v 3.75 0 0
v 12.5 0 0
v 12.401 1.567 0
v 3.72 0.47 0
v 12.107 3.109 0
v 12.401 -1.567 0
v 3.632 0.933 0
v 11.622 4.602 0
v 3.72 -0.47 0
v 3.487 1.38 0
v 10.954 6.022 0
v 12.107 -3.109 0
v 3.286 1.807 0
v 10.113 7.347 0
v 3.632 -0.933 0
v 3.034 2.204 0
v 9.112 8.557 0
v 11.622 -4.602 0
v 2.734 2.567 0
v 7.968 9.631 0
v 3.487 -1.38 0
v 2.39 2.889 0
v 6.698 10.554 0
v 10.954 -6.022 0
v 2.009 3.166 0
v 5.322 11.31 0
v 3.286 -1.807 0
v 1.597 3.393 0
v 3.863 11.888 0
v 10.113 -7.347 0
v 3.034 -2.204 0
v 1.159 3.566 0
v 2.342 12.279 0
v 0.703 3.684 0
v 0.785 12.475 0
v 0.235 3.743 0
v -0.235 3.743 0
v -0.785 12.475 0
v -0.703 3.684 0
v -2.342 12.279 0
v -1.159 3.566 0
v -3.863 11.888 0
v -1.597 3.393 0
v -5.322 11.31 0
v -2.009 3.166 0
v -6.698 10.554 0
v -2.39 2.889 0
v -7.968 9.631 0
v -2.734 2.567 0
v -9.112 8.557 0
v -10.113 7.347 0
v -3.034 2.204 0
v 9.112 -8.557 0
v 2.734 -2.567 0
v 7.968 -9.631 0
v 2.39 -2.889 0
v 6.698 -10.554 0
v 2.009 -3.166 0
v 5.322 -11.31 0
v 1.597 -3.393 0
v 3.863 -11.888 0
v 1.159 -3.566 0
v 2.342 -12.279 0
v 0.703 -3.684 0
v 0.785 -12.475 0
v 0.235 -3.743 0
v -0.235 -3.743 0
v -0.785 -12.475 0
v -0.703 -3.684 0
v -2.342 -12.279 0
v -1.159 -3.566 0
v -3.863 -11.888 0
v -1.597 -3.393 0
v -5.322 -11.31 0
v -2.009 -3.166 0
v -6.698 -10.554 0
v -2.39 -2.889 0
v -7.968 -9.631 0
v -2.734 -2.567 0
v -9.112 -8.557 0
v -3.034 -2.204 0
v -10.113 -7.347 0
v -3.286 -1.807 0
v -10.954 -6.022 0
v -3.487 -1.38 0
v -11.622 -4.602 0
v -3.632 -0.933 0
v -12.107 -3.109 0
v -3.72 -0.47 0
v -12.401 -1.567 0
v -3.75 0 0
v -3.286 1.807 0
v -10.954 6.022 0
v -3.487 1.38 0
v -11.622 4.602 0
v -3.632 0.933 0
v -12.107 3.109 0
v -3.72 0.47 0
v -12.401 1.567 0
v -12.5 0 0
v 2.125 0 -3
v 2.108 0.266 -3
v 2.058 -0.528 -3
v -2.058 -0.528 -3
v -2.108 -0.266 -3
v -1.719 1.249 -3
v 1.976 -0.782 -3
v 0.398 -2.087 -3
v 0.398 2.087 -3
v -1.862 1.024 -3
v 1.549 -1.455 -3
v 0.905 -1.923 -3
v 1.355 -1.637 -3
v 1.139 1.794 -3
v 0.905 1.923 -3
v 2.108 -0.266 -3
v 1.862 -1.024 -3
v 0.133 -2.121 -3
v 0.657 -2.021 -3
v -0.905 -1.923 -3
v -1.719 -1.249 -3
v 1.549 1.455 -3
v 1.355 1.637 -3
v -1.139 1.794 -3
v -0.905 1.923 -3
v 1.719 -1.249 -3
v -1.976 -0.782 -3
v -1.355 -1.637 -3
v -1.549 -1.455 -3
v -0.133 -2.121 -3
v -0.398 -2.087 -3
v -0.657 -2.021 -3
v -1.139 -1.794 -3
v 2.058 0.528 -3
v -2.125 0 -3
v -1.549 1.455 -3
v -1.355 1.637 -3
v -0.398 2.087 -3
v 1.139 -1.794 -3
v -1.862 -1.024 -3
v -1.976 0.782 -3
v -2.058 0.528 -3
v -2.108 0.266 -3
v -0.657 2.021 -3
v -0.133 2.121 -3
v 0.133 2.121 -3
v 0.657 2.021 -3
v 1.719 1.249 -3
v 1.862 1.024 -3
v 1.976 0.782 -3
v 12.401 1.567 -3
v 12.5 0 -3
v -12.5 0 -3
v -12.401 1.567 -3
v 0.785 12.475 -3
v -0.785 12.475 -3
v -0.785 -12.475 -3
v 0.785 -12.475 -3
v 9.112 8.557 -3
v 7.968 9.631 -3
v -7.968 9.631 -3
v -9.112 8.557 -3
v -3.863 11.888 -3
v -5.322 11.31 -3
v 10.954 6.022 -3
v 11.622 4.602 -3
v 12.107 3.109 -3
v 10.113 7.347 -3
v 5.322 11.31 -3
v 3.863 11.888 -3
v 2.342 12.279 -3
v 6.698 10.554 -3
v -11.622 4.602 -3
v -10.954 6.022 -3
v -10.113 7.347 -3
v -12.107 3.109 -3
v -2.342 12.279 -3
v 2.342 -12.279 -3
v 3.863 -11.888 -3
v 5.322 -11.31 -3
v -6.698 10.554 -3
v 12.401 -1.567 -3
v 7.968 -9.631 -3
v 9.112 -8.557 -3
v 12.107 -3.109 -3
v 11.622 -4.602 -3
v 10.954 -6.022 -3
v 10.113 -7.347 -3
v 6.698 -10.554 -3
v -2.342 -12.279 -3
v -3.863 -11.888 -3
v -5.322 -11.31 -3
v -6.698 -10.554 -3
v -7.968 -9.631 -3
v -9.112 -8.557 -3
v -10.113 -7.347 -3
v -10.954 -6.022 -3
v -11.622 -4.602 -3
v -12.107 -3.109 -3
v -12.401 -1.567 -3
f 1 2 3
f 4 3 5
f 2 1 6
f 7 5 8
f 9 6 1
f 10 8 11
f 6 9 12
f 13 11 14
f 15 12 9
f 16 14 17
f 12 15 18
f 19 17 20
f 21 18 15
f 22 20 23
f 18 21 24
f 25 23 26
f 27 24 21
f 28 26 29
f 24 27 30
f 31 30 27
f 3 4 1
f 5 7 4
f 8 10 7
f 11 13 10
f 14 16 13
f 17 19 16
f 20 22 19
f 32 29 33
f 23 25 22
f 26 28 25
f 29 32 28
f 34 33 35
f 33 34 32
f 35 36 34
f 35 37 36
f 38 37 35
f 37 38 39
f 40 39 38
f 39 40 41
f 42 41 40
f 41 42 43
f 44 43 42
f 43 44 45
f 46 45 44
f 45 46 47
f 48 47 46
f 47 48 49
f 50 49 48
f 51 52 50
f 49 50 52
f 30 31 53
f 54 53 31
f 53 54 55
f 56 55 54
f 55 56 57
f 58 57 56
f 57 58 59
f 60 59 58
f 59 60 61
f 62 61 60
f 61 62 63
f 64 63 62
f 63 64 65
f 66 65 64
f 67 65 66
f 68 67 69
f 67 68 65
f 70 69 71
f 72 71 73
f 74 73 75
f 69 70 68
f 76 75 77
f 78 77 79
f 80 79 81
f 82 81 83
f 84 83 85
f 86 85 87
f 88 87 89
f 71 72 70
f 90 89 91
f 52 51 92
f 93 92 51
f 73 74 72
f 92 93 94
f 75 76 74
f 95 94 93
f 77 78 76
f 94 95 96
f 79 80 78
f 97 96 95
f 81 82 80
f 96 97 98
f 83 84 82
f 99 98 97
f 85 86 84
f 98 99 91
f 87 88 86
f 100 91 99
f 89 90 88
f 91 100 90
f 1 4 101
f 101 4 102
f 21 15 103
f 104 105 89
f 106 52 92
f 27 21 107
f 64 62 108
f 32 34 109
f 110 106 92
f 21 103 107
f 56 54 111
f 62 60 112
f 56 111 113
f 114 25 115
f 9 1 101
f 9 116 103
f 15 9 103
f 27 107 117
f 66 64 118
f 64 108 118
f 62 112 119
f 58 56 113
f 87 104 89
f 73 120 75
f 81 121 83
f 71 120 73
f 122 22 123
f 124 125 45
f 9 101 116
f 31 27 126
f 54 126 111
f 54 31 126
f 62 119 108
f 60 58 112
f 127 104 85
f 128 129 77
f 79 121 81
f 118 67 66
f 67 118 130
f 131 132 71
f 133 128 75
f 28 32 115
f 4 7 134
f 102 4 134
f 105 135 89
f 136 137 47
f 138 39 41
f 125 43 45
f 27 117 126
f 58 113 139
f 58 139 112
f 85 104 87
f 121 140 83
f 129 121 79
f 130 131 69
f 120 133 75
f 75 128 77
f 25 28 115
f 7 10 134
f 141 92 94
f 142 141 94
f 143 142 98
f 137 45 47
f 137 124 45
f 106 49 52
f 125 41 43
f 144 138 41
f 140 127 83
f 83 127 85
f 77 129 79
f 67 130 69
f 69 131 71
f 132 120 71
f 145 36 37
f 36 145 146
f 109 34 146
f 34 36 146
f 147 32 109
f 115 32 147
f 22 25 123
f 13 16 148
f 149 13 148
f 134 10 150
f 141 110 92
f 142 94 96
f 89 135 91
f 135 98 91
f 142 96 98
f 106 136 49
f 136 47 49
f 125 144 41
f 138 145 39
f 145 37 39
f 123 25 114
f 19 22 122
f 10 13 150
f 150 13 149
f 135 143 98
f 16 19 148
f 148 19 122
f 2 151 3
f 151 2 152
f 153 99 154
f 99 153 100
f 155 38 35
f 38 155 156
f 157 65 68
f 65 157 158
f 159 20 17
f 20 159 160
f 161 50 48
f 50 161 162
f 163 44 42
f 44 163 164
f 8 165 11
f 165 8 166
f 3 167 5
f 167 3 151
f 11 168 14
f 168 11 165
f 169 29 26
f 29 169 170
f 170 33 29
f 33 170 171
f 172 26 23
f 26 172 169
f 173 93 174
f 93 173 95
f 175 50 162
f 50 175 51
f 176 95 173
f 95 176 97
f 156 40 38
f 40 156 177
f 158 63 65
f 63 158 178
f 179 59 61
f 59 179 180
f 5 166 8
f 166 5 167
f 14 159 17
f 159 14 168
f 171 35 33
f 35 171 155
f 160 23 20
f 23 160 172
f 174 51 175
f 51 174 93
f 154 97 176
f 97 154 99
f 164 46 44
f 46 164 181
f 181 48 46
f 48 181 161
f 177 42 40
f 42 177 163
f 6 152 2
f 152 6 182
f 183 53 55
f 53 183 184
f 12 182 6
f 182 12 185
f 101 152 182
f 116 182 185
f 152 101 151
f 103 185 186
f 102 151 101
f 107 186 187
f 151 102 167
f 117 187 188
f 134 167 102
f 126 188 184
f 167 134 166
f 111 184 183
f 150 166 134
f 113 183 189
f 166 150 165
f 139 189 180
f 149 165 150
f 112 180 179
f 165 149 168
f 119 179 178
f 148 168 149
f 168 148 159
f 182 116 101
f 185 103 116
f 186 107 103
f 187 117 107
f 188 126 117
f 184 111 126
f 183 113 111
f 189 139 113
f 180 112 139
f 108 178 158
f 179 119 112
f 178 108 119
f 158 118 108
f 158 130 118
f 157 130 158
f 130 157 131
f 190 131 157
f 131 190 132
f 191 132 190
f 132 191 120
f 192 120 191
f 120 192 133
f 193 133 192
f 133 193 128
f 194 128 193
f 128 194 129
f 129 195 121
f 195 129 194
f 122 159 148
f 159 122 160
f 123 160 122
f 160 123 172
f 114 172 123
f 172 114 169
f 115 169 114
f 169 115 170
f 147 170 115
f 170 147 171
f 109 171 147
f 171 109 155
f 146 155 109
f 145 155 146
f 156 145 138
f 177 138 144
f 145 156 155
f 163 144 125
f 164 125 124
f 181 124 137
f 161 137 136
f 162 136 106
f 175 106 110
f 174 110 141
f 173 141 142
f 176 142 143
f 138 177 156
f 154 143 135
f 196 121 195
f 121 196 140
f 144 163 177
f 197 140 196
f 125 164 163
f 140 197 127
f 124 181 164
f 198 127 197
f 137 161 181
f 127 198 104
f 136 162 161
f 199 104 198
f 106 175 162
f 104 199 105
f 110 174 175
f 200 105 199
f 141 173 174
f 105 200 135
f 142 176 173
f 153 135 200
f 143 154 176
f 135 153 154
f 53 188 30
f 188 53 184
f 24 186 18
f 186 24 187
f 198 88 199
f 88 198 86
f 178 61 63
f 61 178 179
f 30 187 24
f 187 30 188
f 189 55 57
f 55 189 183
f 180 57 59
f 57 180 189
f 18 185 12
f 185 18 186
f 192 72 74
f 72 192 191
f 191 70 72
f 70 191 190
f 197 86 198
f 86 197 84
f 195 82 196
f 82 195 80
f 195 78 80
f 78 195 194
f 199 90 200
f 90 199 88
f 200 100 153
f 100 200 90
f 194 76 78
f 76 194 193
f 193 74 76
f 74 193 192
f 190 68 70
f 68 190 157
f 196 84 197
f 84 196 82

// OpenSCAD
$fn = 50;

difference() {
	union() {
		translate(v = [0, 0, -3.0]) {
			cylinder(h = 3, r = 12.5);
		}
	}
	union() {
		translate(v = [0, 0, 0]) {
			rotate(a = [0, 0, 0]) {
				difference() {
					union() {
						translate(v = [0, 0, -6.0]) {
							cylinder(h = 6, r = 2.0);
						}
						translate(v = [0, 0, -3]) {
							cylinder(h = 3, r1 = 2.125, r2 = 3.75);
						}
						translate(v = [0, 0, -6.0]) {
							cylinder(h = 6, r = 2.125);
						}
						translate(v = [0, 0, -6.0]) {
							cylinder(h = 6, r = 2.0);
						}
					}
					union();
				}
			}
		}
	}
}
